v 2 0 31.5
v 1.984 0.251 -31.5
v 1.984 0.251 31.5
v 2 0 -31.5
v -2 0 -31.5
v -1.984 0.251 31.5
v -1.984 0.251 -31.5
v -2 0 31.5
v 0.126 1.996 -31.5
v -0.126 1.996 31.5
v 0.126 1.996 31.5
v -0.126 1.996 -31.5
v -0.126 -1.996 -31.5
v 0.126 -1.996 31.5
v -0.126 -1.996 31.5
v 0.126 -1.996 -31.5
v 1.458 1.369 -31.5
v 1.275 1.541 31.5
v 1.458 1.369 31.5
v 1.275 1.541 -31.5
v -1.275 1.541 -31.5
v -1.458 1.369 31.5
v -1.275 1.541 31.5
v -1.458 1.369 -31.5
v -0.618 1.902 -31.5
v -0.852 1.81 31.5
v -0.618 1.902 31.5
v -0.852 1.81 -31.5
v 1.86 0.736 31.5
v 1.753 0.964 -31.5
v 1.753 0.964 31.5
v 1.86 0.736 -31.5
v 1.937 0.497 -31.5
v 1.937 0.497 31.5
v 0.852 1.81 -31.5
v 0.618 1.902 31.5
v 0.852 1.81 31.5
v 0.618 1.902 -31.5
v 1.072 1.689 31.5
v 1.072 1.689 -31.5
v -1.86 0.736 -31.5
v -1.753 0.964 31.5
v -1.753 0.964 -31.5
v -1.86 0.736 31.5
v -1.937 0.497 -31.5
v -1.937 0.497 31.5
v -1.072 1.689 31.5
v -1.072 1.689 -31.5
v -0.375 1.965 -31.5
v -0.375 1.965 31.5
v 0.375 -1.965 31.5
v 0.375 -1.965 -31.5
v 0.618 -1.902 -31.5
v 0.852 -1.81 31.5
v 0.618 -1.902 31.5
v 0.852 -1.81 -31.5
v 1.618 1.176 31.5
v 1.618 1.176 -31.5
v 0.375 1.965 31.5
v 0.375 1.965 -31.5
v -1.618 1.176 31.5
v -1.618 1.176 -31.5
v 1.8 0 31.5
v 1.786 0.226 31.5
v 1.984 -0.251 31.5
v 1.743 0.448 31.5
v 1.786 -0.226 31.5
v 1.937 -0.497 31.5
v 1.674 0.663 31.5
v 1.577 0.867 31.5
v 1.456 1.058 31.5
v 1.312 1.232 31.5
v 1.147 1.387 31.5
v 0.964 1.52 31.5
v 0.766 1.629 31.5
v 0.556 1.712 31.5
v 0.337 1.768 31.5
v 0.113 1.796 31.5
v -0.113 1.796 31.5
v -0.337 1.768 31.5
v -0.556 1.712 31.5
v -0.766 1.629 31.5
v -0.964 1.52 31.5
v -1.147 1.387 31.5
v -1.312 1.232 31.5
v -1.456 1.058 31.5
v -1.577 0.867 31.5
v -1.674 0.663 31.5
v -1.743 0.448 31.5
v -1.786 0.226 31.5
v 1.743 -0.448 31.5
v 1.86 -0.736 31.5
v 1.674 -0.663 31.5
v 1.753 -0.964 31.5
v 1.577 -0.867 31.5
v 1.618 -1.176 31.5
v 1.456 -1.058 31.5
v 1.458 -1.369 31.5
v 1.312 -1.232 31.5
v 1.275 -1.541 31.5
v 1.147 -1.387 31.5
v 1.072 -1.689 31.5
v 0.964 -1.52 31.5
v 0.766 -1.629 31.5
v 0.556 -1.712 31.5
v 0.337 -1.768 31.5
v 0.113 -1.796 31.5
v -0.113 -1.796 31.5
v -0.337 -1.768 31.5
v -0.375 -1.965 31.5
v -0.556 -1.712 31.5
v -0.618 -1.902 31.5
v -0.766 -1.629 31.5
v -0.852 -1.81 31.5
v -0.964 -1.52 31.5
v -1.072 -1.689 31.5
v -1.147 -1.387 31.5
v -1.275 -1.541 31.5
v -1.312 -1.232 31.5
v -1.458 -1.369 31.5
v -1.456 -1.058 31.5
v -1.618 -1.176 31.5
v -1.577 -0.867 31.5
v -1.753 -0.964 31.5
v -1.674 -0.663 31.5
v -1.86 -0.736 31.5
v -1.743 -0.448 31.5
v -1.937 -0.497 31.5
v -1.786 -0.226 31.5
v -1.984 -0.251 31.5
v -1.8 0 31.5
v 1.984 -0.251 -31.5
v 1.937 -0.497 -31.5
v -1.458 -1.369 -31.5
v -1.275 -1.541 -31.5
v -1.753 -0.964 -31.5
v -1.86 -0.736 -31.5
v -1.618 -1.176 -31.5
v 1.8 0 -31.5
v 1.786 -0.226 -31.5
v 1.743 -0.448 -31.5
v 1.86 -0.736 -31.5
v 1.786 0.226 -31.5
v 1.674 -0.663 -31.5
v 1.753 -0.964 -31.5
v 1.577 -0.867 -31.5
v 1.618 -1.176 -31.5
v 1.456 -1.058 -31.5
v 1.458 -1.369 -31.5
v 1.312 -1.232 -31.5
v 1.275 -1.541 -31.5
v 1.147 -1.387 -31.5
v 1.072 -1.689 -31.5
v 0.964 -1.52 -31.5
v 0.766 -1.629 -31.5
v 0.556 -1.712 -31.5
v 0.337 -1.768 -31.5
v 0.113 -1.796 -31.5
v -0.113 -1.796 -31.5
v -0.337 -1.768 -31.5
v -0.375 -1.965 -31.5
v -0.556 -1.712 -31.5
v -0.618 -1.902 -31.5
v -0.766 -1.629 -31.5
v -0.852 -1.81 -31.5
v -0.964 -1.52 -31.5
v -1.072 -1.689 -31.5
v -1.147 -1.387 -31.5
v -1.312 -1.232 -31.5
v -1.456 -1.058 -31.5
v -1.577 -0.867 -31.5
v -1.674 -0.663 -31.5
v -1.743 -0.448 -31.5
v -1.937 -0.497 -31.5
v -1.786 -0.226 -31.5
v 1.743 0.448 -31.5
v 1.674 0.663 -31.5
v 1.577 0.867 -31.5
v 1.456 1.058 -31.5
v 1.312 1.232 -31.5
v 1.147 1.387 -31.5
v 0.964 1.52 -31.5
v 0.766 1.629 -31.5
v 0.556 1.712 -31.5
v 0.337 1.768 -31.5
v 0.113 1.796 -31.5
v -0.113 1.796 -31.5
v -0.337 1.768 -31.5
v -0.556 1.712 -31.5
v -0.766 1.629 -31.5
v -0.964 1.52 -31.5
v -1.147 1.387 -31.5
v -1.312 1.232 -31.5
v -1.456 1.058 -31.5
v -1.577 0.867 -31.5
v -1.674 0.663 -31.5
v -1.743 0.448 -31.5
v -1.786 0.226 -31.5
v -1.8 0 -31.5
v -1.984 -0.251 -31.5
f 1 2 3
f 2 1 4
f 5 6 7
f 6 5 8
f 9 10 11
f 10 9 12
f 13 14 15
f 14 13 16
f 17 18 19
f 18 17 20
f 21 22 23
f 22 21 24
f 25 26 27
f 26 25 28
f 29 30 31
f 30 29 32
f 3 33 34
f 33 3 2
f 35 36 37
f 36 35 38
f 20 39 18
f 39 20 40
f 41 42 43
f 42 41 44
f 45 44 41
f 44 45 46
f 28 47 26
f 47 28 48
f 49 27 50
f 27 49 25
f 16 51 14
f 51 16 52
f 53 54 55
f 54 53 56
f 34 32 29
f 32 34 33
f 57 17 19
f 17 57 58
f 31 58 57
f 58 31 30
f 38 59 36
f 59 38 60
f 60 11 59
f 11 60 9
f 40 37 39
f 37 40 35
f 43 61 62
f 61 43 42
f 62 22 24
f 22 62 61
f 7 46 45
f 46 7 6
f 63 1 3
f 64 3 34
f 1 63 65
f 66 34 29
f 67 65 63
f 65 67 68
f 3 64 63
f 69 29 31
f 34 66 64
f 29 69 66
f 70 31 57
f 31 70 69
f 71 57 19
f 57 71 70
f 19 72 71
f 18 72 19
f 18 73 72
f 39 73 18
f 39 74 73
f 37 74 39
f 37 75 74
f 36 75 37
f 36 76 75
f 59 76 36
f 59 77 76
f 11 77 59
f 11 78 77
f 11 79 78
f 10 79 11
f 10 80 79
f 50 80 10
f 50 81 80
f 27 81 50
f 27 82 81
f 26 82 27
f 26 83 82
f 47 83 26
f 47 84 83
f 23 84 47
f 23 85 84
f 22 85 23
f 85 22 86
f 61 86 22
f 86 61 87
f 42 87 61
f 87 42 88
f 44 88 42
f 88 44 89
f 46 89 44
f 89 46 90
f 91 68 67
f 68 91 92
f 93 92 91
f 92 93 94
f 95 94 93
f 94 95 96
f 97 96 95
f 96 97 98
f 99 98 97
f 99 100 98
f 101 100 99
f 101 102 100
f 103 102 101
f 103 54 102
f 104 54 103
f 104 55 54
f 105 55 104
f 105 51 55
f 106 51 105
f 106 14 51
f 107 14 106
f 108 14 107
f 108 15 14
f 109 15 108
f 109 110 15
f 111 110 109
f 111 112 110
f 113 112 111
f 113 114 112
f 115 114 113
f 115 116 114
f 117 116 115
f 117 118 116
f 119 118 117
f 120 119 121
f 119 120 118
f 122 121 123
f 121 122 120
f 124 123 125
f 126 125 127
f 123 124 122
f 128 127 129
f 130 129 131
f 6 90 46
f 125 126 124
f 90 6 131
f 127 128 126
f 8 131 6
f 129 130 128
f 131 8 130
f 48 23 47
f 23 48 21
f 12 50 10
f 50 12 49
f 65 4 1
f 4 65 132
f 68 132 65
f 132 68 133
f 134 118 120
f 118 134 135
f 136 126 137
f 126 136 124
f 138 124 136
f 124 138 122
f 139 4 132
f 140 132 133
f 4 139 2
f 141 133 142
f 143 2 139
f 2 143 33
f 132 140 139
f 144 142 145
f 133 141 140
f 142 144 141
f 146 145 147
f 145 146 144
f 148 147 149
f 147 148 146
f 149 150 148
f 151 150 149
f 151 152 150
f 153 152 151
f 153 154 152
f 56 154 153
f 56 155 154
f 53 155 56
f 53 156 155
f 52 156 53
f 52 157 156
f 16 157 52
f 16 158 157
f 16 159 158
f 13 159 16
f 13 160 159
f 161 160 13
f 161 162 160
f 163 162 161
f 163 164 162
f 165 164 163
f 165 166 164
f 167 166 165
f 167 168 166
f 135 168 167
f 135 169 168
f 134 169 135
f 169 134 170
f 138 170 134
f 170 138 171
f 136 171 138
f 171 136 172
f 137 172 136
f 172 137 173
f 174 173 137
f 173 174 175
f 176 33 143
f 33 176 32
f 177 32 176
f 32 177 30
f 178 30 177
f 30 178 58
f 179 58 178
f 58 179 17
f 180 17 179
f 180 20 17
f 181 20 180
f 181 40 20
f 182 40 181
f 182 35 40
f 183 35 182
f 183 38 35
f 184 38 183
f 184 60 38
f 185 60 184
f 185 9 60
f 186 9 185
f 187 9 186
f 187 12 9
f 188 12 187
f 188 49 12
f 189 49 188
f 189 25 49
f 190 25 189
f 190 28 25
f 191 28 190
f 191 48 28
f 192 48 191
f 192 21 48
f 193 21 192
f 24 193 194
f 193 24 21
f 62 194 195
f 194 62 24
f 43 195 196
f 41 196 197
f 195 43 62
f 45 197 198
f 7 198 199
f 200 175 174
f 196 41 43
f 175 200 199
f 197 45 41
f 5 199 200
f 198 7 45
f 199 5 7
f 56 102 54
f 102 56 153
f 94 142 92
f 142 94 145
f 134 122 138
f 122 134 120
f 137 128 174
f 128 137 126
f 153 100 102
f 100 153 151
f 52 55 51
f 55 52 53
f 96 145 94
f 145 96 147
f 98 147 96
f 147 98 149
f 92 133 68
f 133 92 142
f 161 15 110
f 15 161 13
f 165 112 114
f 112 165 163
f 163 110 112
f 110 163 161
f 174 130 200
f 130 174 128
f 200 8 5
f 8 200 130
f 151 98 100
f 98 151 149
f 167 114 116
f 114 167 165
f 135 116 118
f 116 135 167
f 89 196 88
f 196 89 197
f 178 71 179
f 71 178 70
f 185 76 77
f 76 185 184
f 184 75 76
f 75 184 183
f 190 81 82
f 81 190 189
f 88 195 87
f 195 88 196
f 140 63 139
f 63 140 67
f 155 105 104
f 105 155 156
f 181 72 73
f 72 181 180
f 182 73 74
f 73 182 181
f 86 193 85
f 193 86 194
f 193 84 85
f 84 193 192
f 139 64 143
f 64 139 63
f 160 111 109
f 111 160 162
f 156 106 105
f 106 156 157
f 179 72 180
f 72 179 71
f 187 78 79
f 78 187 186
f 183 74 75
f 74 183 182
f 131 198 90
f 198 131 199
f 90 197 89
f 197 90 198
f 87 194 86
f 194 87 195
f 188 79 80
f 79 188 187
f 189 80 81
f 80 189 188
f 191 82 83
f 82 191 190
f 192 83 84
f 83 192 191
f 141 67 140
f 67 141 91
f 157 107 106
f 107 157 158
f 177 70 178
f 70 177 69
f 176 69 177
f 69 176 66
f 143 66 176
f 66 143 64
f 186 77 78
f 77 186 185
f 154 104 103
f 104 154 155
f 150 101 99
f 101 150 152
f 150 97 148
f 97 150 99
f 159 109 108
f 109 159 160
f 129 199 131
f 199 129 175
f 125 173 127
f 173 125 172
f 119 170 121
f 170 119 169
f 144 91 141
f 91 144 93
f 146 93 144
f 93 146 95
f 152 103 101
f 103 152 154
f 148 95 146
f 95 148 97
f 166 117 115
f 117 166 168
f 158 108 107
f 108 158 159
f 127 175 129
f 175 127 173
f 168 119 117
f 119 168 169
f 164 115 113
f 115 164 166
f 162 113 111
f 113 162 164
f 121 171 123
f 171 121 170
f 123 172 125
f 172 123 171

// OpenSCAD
$fn = 50;


difference() {
	union() {
		translate(v = [0, 0, -31.5000000000]) {
			cylinder(h = 63, r = 2.0000000000);
		}
	}
	union() {
		translate(v = [0, 0, -100.0000000000]) {
			cylinder(h = 200, r = 1.8000000000);
		}
	}
}
